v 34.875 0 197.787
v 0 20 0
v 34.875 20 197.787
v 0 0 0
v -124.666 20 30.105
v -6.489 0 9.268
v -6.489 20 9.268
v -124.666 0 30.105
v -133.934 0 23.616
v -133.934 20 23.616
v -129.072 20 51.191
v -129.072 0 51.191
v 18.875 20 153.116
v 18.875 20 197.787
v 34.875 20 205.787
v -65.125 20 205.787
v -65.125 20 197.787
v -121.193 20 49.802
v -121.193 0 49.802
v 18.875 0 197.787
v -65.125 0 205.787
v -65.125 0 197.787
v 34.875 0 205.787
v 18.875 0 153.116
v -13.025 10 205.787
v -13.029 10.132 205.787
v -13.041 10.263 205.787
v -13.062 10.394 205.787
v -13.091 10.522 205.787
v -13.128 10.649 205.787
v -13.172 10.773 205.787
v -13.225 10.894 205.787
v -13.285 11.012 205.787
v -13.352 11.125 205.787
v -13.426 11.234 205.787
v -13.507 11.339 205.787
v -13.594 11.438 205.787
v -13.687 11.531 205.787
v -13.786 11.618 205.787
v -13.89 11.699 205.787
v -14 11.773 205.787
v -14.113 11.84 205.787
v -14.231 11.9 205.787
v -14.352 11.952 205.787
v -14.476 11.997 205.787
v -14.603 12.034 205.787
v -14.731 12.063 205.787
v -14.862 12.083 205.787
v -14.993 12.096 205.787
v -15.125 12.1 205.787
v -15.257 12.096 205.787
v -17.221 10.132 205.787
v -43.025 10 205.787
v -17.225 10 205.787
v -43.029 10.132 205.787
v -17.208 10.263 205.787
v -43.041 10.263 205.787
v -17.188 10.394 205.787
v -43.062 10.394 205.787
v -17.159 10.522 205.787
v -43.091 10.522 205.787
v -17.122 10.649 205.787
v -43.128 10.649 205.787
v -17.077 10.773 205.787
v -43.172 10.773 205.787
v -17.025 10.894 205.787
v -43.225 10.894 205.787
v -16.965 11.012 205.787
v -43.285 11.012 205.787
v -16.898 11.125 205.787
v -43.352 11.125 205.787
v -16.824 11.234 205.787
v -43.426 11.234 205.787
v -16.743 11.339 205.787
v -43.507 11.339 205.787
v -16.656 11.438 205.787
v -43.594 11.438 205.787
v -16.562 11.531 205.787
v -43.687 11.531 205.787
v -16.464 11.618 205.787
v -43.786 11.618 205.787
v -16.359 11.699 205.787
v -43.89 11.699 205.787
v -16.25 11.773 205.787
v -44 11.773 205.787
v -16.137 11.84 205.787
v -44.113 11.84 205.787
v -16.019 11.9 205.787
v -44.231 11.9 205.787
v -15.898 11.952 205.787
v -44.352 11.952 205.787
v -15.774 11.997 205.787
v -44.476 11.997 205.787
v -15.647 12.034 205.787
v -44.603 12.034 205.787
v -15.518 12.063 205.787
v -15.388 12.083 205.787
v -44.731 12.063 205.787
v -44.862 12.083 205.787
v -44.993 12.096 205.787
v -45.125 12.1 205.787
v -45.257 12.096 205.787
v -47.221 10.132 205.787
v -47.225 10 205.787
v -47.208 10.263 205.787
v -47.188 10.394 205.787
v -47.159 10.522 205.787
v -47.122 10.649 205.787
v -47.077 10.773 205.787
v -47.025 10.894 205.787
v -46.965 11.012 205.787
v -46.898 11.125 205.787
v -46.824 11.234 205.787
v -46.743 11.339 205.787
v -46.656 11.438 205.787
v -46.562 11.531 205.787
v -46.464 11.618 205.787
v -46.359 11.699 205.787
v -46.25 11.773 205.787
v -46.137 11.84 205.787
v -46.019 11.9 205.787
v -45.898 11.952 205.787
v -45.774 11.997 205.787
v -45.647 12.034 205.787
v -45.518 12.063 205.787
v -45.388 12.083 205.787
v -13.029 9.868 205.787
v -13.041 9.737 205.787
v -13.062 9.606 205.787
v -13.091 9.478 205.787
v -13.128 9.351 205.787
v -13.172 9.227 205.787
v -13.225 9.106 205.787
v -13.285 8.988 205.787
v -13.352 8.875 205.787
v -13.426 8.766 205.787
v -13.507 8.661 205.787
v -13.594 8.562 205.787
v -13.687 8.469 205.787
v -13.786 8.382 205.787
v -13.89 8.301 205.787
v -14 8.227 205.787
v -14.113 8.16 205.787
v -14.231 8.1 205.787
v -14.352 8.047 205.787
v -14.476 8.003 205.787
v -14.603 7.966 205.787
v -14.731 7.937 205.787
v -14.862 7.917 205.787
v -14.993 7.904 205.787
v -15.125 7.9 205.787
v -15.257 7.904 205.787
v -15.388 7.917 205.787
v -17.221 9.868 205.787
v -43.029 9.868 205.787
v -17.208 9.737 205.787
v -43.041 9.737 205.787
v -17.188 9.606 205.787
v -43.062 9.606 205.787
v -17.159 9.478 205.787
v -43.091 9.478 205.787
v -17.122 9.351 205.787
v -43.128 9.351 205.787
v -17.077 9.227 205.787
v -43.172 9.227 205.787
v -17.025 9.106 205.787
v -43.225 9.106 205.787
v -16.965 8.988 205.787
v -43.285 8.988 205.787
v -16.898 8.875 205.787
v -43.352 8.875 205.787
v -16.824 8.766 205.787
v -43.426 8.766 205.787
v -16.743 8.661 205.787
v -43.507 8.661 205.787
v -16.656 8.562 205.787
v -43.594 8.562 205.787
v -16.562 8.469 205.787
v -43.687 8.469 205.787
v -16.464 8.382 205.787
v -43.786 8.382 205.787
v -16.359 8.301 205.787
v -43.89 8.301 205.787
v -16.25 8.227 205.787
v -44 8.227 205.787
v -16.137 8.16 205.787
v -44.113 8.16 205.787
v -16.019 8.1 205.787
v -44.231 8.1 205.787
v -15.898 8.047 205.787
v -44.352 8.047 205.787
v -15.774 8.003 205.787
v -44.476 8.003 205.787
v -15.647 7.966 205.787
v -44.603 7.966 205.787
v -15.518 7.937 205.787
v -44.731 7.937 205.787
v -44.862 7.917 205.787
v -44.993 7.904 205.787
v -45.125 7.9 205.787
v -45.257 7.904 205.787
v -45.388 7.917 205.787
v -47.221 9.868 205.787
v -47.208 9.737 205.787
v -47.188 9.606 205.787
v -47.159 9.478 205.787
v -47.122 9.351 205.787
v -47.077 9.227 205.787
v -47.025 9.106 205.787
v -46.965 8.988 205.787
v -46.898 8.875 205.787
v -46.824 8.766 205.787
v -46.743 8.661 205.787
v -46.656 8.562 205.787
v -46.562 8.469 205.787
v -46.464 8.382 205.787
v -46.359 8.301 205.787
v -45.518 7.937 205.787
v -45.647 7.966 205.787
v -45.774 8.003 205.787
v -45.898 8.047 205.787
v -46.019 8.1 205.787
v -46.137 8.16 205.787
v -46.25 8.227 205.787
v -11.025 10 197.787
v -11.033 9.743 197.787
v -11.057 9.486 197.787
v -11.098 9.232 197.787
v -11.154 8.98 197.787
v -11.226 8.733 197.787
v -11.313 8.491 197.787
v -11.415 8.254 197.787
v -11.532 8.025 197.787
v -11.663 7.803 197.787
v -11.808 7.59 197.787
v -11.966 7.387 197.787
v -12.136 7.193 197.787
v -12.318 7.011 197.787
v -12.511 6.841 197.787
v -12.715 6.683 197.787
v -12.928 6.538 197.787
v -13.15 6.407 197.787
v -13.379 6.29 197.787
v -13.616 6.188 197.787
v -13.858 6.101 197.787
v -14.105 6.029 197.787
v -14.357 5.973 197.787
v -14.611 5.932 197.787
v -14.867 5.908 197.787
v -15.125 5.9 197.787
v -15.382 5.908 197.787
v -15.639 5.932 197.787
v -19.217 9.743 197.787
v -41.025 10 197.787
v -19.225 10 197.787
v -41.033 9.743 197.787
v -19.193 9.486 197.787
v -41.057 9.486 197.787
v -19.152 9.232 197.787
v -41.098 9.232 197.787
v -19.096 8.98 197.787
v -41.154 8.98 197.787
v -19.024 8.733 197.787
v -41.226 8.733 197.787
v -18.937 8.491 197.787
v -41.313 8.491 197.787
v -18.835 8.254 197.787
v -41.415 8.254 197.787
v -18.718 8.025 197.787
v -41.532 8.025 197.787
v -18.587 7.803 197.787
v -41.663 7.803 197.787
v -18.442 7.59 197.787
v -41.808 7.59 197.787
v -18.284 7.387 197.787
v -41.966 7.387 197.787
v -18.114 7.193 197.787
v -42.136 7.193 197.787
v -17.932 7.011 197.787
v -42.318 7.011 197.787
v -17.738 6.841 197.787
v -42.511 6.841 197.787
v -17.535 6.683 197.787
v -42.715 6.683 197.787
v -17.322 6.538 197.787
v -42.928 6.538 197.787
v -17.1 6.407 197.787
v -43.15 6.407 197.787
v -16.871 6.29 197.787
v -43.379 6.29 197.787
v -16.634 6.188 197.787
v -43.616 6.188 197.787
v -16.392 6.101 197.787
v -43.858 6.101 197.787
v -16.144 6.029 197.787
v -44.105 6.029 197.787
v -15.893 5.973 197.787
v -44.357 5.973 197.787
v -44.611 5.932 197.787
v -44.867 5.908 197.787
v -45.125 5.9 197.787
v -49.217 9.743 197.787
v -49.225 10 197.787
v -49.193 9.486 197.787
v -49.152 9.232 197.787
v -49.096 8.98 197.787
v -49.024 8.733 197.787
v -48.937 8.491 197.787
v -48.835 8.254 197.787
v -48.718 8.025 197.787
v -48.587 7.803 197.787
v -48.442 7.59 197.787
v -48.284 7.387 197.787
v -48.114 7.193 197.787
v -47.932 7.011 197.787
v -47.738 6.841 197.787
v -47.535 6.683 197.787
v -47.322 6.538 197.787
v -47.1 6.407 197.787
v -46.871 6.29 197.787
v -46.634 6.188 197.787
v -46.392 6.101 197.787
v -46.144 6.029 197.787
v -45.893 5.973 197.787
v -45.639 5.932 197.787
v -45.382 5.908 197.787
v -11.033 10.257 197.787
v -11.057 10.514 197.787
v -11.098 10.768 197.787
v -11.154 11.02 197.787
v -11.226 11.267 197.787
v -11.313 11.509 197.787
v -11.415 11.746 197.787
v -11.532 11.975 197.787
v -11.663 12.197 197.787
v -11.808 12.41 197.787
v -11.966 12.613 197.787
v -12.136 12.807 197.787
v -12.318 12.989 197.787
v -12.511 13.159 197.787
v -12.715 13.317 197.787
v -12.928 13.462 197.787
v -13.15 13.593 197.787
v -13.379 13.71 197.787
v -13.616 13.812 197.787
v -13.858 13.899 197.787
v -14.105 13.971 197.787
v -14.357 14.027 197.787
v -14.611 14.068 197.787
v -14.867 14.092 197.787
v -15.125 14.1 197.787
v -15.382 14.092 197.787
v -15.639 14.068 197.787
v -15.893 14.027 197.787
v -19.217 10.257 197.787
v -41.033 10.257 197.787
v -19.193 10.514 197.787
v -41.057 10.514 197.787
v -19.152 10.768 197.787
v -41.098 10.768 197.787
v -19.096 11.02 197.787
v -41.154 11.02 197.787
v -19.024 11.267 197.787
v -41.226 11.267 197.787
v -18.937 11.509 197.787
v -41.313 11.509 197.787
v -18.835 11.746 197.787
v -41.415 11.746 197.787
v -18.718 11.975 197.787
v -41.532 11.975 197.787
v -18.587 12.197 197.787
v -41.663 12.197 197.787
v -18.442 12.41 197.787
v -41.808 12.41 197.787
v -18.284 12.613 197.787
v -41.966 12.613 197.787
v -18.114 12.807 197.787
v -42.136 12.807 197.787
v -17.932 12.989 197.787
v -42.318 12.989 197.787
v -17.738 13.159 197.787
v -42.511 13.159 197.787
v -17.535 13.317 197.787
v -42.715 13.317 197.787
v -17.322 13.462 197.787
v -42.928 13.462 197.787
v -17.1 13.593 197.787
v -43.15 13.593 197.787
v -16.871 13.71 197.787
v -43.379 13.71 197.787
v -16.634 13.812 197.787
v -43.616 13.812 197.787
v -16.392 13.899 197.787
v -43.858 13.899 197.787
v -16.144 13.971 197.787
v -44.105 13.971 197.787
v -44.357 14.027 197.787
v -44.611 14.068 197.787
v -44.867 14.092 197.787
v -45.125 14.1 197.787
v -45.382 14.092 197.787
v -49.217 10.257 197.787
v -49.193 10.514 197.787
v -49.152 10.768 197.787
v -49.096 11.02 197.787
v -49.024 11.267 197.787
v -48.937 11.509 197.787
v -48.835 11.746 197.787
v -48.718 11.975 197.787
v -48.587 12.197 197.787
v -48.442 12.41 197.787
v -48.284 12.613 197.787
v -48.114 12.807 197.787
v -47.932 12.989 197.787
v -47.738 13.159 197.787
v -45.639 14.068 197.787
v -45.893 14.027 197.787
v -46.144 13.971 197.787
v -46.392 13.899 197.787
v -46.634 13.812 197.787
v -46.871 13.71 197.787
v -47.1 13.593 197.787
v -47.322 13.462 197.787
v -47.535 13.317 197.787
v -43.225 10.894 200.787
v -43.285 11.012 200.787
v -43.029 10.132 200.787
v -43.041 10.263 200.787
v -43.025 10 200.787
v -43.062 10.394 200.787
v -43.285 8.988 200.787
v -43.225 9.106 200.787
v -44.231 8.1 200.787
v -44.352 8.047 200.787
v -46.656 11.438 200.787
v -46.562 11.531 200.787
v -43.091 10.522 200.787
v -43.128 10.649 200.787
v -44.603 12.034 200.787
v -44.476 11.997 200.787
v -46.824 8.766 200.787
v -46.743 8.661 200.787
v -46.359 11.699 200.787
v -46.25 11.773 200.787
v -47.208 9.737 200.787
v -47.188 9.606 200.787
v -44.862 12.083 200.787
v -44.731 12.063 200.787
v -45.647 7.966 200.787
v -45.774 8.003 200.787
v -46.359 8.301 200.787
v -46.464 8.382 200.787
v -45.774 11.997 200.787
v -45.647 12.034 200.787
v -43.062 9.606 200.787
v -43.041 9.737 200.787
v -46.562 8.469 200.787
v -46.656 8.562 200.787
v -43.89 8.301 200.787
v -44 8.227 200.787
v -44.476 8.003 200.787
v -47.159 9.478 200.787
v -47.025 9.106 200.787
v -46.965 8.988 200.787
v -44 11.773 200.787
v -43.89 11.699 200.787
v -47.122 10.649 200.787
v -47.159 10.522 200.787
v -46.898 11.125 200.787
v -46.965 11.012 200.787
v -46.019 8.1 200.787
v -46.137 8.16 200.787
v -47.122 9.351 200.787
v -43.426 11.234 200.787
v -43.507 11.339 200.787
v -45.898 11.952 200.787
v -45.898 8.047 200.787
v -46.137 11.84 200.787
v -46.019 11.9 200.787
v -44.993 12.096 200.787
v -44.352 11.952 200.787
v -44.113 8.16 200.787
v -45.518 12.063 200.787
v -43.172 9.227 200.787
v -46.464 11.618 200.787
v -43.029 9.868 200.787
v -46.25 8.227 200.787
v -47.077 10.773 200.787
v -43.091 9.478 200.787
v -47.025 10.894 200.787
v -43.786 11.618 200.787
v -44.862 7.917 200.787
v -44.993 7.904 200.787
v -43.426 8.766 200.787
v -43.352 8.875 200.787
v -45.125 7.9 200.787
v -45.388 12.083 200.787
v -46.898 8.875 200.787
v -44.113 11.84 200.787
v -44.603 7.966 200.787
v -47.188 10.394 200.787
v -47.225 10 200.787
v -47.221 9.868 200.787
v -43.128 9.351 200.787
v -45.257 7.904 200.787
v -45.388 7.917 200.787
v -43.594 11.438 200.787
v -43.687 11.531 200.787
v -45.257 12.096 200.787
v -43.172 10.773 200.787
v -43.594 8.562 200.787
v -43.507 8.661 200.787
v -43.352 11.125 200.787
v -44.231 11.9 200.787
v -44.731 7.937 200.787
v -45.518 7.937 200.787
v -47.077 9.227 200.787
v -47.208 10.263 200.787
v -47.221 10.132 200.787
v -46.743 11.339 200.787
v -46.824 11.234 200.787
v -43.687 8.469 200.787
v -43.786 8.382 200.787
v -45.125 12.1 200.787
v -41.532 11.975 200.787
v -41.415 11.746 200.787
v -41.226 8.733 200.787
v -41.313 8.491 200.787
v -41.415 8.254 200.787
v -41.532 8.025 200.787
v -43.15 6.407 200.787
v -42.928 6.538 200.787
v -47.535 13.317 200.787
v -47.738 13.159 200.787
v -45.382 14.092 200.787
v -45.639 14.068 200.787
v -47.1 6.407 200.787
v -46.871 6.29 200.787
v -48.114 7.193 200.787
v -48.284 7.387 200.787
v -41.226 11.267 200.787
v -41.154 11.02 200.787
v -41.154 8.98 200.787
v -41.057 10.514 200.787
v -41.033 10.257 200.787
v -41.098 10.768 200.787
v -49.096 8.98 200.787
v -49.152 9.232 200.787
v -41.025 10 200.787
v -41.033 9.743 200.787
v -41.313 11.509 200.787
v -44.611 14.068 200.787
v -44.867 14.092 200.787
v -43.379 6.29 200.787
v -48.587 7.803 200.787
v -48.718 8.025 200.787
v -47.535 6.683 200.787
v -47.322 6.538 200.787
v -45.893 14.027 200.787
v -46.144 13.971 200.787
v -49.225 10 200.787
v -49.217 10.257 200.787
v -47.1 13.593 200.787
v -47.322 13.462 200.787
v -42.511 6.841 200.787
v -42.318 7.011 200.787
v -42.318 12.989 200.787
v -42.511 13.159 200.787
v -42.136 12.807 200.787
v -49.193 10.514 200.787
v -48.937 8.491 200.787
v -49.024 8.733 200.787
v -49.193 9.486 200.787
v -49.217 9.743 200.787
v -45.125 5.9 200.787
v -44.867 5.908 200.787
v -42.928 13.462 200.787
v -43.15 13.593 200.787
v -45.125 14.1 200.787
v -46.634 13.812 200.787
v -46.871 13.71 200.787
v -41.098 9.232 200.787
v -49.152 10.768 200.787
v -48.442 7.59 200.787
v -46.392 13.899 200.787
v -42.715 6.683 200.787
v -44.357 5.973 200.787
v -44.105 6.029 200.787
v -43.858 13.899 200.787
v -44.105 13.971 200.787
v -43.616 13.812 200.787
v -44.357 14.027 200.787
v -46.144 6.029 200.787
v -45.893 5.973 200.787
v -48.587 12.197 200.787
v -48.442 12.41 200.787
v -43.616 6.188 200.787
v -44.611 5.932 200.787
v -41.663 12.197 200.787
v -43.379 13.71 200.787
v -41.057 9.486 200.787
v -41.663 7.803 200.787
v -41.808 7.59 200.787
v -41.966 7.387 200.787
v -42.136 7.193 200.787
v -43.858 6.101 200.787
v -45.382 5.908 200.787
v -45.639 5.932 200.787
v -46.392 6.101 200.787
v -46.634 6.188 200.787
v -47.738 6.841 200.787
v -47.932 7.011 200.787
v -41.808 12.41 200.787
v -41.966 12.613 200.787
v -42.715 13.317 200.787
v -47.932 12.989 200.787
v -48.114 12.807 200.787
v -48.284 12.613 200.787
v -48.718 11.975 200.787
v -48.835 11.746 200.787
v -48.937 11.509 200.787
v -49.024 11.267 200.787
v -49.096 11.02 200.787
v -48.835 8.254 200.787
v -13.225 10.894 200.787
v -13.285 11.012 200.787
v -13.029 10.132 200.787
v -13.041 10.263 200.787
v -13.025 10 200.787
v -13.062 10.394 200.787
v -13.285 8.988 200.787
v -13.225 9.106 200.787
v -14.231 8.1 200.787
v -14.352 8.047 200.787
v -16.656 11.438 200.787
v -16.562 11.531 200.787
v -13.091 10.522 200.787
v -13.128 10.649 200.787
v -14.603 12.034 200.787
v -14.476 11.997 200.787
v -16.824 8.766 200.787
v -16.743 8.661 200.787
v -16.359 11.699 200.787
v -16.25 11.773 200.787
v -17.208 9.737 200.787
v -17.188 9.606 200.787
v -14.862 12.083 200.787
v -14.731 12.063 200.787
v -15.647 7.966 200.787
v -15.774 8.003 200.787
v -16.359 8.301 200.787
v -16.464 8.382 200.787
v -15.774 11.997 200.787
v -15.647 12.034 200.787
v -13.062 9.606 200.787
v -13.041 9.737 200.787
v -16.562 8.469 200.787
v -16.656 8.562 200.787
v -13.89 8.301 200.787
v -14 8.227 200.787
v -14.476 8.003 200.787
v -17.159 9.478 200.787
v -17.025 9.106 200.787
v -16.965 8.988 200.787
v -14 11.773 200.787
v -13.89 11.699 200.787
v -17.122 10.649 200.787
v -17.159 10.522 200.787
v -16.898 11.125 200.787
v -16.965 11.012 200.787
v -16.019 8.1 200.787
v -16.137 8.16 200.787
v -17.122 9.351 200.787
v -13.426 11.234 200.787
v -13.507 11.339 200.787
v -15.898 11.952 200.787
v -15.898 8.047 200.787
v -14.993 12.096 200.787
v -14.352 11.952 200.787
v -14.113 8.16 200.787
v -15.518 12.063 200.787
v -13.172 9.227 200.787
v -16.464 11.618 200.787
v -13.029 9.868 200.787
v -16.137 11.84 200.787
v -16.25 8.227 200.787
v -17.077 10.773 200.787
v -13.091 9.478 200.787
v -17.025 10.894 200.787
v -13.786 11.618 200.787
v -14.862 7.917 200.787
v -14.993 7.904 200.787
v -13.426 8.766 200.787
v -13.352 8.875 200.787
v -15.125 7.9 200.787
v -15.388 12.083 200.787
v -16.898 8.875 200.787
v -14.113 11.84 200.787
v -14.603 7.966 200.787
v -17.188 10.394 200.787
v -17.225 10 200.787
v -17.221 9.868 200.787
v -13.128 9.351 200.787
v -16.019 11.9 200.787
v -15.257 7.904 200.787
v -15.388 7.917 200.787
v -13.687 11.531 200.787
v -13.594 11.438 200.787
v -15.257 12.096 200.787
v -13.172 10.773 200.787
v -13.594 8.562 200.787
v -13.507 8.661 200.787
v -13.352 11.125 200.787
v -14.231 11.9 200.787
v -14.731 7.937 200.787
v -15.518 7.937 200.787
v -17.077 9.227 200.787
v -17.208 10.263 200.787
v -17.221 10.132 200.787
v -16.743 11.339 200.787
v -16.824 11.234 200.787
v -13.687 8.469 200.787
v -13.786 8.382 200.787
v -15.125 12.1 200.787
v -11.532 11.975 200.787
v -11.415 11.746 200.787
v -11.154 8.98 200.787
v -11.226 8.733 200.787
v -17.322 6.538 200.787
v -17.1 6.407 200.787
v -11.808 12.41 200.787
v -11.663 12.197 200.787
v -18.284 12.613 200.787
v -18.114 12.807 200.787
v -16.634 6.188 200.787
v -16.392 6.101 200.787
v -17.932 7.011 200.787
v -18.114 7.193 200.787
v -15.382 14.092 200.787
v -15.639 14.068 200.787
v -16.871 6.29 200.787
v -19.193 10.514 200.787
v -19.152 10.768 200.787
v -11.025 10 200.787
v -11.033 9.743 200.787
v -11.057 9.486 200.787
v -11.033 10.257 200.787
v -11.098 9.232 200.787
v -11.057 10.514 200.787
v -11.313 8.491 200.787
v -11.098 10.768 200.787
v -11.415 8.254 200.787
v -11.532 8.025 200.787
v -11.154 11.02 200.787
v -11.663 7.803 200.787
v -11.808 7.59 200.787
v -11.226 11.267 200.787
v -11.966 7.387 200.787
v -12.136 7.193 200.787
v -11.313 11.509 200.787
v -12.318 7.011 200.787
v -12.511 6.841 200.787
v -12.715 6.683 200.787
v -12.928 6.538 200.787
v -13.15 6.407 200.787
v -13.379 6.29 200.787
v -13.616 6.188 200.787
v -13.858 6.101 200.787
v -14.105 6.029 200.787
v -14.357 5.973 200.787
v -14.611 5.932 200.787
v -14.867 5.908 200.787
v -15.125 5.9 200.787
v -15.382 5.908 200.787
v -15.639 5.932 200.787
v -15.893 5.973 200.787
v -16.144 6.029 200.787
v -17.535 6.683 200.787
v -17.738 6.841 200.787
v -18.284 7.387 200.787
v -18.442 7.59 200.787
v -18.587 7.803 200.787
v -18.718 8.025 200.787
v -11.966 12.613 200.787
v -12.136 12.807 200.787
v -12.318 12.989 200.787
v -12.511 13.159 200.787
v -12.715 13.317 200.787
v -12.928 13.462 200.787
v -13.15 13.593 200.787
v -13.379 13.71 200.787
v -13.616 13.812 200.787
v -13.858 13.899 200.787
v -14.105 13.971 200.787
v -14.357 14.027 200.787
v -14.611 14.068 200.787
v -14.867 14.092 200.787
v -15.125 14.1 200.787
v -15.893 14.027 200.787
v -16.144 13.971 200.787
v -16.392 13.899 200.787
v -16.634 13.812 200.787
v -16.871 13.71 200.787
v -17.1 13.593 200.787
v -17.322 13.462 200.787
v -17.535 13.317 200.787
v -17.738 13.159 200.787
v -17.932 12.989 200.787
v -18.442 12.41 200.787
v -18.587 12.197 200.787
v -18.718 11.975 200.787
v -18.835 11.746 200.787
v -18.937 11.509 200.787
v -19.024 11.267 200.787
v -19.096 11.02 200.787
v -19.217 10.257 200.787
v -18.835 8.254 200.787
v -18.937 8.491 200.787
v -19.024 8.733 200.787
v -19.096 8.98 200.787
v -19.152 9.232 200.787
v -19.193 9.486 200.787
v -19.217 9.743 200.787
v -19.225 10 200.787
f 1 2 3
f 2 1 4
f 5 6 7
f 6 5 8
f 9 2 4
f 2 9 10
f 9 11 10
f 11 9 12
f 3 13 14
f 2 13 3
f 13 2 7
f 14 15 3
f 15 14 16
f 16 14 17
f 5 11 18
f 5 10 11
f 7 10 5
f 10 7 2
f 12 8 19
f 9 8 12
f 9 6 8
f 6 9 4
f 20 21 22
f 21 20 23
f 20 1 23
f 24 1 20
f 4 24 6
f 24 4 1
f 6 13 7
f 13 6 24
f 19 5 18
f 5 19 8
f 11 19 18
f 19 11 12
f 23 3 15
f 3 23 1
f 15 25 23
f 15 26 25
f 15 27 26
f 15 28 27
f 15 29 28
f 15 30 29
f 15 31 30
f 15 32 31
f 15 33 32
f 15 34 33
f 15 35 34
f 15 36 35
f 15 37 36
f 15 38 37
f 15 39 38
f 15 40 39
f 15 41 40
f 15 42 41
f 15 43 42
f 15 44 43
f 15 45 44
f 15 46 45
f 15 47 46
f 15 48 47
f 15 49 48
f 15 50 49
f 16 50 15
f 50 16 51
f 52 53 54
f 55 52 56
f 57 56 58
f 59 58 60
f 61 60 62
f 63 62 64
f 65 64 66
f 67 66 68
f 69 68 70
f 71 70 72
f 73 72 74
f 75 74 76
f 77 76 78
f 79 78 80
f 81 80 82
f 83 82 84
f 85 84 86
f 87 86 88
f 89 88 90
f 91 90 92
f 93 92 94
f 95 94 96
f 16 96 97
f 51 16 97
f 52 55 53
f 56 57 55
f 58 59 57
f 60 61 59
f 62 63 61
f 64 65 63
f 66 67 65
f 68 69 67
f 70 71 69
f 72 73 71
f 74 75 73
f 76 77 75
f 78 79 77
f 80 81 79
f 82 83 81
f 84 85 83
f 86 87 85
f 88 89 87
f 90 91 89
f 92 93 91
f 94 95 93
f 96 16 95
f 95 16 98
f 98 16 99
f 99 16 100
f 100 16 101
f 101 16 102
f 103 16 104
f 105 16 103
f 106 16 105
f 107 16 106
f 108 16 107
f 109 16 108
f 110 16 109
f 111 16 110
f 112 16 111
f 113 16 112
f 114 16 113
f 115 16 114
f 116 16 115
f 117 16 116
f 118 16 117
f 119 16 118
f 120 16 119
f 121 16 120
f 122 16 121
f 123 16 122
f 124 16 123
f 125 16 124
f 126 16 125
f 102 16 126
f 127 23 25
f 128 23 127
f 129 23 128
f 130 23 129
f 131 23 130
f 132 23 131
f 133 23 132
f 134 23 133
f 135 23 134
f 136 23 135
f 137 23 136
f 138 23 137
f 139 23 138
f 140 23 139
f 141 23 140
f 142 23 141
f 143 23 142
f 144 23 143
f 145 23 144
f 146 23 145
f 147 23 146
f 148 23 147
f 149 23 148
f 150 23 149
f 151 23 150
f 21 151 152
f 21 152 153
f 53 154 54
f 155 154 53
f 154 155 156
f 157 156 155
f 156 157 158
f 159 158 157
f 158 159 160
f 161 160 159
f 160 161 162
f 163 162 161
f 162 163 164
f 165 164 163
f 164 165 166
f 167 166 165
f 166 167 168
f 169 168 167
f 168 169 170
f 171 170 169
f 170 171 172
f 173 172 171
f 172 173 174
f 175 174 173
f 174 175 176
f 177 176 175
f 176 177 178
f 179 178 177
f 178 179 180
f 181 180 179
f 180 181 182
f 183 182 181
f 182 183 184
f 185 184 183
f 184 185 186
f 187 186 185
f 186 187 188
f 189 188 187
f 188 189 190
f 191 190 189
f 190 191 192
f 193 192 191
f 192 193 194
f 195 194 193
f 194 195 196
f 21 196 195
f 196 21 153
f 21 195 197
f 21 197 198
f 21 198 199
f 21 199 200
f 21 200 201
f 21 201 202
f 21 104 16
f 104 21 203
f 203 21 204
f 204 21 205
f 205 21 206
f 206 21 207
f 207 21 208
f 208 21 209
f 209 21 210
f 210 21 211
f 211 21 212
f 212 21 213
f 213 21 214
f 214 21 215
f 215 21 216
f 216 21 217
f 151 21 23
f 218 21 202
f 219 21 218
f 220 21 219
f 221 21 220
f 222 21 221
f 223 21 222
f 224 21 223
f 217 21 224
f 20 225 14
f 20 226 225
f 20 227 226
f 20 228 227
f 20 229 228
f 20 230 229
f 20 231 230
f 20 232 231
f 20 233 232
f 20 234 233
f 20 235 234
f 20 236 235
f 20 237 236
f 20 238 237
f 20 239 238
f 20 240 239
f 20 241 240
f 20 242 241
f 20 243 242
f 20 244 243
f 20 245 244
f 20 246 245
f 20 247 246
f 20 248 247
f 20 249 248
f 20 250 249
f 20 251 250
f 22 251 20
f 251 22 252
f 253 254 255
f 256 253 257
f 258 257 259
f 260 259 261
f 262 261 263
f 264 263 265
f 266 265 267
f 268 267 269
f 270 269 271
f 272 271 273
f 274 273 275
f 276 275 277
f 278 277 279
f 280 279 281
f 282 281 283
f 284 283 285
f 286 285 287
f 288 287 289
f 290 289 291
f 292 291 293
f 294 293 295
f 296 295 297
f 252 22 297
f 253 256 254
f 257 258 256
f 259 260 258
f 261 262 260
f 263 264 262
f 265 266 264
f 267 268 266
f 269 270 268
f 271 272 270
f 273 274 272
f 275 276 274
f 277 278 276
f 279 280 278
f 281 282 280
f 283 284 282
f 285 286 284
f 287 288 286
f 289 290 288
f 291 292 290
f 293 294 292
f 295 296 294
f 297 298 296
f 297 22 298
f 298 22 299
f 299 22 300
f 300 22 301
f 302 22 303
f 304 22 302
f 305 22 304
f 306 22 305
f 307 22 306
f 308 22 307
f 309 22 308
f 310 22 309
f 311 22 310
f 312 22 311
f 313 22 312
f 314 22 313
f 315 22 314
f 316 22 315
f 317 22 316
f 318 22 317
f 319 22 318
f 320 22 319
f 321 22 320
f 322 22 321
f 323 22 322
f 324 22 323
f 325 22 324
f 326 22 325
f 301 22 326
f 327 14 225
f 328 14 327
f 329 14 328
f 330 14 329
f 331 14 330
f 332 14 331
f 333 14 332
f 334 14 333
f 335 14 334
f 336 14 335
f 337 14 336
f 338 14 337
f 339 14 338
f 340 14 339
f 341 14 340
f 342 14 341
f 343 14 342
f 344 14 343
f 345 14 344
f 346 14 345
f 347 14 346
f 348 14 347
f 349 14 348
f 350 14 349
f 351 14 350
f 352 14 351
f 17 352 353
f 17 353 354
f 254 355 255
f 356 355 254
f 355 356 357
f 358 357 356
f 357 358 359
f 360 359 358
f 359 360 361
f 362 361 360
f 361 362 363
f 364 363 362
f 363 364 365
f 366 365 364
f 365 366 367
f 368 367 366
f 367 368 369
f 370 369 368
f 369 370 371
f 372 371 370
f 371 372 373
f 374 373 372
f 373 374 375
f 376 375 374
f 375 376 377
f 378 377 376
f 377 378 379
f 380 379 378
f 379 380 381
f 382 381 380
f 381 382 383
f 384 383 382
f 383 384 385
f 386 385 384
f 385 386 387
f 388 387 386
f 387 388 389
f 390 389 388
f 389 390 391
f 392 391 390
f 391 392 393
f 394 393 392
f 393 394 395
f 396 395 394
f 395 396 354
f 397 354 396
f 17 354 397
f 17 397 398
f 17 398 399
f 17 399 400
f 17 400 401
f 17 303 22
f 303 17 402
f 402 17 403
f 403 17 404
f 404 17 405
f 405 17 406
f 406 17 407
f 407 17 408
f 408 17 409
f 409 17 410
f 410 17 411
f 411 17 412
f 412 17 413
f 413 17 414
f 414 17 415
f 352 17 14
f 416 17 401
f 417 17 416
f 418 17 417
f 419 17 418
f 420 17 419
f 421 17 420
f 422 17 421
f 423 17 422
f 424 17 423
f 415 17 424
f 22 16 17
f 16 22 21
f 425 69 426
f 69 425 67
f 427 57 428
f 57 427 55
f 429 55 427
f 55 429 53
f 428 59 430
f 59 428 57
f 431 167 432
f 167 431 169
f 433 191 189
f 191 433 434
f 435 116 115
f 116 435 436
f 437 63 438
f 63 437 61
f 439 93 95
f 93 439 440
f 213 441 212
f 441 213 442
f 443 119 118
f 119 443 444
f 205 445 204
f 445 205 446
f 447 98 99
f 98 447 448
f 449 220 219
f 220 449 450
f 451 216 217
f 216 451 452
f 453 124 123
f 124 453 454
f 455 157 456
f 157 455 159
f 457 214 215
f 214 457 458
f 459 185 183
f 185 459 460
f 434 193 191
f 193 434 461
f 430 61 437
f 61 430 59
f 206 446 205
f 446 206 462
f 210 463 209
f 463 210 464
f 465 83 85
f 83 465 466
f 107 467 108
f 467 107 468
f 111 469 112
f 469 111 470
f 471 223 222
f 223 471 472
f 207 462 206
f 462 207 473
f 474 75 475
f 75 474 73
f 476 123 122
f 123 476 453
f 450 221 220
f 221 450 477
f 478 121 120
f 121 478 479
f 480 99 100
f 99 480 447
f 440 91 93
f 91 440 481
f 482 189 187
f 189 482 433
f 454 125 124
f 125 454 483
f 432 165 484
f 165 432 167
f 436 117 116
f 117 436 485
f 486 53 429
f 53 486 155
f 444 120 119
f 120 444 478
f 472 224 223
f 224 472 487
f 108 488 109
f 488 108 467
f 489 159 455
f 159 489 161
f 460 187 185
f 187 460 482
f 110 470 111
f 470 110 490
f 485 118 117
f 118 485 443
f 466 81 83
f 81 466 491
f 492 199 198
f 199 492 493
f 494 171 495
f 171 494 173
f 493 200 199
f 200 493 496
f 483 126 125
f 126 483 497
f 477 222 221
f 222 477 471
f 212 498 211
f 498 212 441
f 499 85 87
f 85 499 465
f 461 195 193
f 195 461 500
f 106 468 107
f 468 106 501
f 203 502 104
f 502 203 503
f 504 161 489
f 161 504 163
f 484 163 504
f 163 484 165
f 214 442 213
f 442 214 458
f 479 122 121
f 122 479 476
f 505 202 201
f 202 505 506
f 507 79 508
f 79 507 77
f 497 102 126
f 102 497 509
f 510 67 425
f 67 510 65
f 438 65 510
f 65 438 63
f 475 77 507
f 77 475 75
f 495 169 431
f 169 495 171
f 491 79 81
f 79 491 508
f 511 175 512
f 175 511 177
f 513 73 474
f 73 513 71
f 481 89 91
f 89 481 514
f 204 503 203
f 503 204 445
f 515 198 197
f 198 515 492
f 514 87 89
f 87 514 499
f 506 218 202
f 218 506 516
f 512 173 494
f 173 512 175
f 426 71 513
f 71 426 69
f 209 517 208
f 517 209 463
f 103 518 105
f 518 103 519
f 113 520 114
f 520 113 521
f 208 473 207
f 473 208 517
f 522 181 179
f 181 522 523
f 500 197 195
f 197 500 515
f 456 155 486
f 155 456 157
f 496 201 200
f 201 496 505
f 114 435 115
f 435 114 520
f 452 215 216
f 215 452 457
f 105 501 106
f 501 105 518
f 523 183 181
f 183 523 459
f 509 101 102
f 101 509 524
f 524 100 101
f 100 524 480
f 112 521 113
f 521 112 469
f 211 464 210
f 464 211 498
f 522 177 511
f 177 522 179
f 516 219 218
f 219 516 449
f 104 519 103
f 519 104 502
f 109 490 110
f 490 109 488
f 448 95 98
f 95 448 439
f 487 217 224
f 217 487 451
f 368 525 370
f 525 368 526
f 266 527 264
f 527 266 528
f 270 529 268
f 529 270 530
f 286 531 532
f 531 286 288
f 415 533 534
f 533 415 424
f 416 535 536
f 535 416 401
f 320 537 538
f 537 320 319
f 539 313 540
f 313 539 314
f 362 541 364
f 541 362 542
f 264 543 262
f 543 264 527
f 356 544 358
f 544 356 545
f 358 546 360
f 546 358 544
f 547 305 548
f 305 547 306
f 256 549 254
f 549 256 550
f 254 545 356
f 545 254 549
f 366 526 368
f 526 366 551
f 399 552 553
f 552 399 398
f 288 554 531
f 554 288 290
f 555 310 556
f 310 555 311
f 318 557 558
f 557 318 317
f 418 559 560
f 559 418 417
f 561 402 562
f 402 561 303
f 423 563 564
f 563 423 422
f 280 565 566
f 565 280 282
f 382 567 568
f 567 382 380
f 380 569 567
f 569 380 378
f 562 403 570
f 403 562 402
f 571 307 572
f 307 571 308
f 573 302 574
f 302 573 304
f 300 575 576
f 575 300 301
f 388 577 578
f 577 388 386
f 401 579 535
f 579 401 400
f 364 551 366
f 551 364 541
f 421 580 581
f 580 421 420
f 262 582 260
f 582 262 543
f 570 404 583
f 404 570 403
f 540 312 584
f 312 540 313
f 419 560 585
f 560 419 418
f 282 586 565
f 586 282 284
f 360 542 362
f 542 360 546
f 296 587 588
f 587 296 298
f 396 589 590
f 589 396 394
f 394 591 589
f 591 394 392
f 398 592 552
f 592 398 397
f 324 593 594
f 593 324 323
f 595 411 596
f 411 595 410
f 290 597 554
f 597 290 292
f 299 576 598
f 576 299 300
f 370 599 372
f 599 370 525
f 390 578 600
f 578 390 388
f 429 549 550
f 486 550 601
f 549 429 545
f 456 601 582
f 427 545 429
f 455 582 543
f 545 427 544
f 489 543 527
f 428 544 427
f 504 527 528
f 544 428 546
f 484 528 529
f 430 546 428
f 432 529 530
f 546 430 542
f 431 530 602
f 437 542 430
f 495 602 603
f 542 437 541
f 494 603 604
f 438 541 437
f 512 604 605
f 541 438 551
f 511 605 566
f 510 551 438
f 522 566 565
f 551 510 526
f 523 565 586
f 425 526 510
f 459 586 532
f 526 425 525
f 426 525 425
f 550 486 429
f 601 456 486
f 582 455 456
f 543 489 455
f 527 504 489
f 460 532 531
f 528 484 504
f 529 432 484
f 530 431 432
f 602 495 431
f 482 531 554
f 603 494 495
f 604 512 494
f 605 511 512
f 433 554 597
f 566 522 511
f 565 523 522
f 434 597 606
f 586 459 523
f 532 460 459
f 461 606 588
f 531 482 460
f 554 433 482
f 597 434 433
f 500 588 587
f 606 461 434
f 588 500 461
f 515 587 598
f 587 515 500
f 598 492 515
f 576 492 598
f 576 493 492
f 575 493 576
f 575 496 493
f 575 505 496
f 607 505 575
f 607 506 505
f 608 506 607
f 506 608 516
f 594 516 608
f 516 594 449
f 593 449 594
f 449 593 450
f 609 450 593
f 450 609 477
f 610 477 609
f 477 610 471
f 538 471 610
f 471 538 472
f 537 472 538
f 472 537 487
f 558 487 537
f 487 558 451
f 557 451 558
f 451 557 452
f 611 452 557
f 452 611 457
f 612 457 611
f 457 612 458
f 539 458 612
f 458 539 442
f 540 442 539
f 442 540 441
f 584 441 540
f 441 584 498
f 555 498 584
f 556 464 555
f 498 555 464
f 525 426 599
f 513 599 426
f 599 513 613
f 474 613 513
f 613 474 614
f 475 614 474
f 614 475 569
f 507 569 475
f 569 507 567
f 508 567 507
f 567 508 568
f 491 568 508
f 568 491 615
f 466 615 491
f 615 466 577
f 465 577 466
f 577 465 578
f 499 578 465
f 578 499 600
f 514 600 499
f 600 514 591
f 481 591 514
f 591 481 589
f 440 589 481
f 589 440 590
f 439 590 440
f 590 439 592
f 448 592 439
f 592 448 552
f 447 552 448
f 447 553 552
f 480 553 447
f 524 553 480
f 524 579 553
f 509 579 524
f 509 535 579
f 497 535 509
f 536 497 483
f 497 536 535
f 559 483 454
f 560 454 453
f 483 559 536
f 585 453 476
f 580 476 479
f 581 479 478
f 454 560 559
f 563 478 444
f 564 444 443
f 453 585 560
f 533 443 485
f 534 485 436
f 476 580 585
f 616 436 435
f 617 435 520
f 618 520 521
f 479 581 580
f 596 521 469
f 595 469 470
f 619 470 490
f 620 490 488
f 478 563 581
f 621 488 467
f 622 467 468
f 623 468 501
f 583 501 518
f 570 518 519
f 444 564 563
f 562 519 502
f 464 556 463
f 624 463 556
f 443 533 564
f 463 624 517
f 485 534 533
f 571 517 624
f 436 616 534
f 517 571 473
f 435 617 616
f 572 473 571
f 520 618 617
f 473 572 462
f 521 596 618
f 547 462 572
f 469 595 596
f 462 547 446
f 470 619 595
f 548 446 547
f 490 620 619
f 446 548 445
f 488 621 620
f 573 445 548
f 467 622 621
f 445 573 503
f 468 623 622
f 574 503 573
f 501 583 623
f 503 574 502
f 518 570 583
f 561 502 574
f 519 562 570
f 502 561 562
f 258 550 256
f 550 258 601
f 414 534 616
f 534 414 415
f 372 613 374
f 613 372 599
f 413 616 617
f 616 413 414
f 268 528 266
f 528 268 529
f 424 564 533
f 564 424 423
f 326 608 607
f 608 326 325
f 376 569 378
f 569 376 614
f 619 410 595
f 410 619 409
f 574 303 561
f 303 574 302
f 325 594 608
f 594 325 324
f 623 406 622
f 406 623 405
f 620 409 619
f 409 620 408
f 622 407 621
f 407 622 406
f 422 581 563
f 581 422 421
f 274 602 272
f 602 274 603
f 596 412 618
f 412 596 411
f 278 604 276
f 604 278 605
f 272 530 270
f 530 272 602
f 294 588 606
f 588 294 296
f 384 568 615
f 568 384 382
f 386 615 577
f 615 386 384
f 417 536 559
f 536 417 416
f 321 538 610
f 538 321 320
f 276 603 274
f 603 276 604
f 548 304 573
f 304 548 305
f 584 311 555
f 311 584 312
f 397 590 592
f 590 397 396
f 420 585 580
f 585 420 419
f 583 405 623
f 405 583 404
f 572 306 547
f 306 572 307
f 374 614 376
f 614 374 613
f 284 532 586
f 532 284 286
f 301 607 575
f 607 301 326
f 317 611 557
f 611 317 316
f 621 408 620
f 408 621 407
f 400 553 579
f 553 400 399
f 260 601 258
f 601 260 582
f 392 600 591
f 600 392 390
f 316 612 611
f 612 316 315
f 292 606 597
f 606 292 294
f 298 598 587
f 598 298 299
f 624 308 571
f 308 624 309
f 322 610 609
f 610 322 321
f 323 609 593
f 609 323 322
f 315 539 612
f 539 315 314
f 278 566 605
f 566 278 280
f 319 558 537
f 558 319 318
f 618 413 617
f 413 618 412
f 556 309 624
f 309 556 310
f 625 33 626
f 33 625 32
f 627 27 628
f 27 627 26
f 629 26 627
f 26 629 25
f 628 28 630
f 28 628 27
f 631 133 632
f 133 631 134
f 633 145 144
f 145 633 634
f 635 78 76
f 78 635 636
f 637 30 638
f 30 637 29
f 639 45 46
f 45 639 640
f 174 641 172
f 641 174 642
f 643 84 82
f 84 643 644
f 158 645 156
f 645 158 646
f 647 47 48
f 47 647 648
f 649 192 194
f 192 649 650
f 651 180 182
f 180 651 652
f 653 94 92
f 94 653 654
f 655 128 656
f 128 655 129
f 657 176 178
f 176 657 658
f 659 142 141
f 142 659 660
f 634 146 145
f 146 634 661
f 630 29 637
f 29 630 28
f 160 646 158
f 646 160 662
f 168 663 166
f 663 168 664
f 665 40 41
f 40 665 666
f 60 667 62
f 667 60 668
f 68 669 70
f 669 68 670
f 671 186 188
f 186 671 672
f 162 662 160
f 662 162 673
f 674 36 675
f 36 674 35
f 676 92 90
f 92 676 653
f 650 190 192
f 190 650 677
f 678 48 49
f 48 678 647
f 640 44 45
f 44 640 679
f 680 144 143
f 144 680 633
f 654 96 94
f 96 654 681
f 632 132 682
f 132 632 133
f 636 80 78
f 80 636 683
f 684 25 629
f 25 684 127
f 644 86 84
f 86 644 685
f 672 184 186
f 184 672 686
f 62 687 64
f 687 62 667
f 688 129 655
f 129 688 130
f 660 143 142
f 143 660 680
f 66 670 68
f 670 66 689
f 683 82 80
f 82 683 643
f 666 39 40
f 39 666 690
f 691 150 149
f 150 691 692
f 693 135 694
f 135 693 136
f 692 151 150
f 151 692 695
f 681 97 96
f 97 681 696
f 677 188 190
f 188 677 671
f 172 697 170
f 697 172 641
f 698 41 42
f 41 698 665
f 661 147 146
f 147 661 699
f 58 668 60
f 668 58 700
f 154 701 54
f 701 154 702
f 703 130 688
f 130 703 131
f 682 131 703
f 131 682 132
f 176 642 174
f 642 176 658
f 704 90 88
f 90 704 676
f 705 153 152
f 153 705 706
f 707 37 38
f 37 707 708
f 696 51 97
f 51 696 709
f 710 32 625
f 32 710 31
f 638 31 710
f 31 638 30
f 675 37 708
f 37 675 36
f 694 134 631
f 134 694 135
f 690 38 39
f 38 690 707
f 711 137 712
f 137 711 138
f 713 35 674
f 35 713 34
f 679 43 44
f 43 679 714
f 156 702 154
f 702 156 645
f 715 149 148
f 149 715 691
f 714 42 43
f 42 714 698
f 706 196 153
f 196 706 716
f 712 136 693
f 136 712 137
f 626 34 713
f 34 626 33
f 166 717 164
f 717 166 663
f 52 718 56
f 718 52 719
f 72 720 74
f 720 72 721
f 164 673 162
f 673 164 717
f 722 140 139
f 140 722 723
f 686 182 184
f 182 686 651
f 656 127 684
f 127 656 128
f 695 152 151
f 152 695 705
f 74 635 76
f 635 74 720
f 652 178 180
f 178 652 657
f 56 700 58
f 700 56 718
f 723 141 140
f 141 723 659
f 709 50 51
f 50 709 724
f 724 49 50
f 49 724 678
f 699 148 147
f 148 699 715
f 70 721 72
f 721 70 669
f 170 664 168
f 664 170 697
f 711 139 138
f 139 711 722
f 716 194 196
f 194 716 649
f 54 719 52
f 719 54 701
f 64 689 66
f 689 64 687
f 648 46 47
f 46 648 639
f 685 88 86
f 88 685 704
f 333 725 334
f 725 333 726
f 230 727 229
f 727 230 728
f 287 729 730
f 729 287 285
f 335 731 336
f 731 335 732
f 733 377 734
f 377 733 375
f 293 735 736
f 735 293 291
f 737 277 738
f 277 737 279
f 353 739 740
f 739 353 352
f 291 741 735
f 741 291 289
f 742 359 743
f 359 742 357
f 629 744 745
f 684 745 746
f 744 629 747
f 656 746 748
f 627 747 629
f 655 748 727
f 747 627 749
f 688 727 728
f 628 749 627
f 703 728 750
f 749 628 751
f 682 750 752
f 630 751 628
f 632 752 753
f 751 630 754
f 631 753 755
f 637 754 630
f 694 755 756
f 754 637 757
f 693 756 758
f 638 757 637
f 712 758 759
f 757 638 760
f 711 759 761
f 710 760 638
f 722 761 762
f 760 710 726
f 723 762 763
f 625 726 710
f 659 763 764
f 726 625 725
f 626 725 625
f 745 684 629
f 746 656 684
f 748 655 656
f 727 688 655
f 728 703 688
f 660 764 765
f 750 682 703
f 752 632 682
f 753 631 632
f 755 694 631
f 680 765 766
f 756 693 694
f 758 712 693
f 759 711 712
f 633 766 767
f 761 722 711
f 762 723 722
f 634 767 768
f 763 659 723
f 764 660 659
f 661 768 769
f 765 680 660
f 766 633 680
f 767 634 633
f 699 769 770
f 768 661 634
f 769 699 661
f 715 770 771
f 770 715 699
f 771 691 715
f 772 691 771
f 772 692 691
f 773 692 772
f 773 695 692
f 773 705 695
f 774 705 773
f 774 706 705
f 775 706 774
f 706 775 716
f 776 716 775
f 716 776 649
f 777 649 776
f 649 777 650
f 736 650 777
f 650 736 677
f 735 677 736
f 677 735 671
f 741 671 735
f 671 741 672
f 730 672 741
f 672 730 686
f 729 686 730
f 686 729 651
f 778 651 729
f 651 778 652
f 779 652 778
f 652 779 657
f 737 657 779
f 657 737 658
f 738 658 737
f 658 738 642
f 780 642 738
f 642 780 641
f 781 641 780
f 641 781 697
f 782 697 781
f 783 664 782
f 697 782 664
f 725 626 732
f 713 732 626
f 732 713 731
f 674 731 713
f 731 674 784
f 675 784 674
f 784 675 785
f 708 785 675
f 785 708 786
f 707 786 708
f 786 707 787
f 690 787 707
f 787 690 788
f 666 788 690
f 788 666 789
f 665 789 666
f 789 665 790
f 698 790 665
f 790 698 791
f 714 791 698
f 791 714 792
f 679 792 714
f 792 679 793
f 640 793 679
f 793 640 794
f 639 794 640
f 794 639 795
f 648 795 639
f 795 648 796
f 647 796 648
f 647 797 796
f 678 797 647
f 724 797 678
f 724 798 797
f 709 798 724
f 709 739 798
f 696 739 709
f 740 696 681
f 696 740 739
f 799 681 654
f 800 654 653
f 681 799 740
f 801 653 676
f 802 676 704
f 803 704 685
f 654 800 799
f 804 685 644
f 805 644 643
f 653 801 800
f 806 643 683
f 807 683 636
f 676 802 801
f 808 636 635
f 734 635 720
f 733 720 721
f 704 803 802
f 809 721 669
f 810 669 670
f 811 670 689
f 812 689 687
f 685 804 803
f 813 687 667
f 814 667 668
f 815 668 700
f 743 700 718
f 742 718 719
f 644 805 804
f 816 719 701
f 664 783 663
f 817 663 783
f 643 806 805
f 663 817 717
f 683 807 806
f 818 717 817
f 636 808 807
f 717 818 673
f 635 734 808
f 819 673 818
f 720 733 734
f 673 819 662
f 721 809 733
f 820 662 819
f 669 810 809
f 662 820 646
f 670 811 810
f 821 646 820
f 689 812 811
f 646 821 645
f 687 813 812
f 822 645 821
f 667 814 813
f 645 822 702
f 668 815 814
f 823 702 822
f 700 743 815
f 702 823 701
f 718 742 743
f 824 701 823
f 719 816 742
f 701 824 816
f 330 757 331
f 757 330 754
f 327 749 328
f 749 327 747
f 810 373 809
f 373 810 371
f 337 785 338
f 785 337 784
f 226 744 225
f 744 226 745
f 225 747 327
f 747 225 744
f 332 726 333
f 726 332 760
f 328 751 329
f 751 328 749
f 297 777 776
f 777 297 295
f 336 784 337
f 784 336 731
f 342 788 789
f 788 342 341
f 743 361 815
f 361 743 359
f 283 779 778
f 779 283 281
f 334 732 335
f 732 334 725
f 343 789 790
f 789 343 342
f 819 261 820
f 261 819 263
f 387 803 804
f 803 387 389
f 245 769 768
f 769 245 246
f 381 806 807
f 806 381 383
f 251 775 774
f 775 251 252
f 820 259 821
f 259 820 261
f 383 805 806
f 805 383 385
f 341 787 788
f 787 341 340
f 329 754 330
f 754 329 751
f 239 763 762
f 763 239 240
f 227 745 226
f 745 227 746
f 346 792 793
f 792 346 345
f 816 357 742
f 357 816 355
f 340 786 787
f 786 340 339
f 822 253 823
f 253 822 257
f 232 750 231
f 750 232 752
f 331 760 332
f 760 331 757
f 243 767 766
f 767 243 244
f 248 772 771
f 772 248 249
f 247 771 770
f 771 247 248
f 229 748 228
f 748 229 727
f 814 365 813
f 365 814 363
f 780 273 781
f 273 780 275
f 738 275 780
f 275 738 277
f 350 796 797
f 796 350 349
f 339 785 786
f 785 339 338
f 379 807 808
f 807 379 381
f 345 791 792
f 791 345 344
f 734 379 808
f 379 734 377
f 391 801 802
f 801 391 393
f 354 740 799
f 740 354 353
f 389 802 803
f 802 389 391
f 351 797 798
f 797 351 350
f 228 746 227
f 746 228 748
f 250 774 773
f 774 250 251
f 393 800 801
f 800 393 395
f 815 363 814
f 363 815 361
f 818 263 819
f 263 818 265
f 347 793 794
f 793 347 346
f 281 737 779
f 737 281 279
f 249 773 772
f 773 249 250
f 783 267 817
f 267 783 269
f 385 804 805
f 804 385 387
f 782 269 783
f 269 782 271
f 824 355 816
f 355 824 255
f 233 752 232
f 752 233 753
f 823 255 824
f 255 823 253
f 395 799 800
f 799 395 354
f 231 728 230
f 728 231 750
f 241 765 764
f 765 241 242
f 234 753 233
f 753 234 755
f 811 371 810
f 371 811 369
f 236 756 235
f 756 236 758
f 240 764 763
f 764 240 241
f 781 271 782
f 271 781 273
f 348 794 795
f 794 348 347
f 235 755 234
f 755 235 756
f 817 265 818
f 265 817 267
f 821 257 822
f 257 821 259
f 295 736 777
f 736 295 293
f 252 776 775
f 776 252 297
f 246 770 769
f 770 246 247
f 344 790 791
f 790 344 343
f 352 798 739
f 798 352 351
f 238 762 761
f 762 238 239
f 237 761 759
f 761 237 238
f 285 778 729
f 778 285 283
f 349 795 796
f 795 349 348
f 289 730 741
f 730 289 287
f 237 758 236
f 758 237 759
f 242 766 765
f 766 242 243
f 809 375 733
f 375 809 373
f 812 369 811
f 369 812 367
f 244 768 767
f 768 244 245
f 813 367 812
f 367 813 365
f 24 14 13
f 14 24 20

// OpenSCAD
$fa = 1;
$fs = 0.4;
$fn = 100;

screw_diameter = 4.20;
screw_cap_diameter = 8.20;
screw_thickness = 4.20;

angle = 10.00;
arm_width = 20.00;
arm_thickness = 8.00;
arm_fastening_length = 100.00;

raw_speaker_height = 180.00;
speaker_depth = 120.00;

extra_height = sin(angle) * speaker_depth;
speaker_height = raw_speaker_height + extra_height;

front_overlap_height=20.00;

module clamp()
{
    cube([speaker_depth+arm_thickness*2, arm_width, arm_thickness]);
    translate([speaker_depth+arm_thickness, 0, 0]) cube([arm_thickness, arm_width, speaker_height]);
    translate([0, 0, 0]) cube([arm_thickness, arm_width, front_overlap_height+arm_thickness]);
}

hh = cos(angle) * speaker_height;
vv = sin(angle) * speaker_height;

rotate ([0, angle , 0]) translate([-(speaker_depth+2*arm_thickness), 0, 0]) clamp();

/* Actual fastening */
difference() {
    translate([vv-arm_fastening_length, 0, hh]) cube([arm_fastening_length, arm_width, arm_thickness]);

    offset_1 = arm_fastening_length / 5.00;
    translate([vv-arm_fastening_length + offset_1, arm_width/2.00, hh-1.00]) cylinder(h=arm_thickness+2.00, d=screw_diameter);
    translate([vv-arm_fastening_length + offset_1, arm_width/2.00, hh-5.00]) cylinder(h=arm_thickness, d=screw_cap_diameter);

    offset_2 = (arm_fastening_length / 2.00);
    translate([vv-arm_fastening_length + offset_2, arm_width/2.00, hh-1.00]) cylinder(h=arm_thickness+2.00, d=screw_diameter);
    translate([vv-arm_fastening_length + offset_2, arm_width/2.00, hh-5.00]) cylinder(h=arm_thickness, d=screw_cap_diameter);
}

/* Inforcement */
enf_hyp = arm_thickness / sin(angle);
enf_len = cos(angle) * enf_hyp;

translate([vv-arm_thickness-arm_thickness, 0, hh-enf_len]) cube([arm_thickness, arm_width, enf_len]);
